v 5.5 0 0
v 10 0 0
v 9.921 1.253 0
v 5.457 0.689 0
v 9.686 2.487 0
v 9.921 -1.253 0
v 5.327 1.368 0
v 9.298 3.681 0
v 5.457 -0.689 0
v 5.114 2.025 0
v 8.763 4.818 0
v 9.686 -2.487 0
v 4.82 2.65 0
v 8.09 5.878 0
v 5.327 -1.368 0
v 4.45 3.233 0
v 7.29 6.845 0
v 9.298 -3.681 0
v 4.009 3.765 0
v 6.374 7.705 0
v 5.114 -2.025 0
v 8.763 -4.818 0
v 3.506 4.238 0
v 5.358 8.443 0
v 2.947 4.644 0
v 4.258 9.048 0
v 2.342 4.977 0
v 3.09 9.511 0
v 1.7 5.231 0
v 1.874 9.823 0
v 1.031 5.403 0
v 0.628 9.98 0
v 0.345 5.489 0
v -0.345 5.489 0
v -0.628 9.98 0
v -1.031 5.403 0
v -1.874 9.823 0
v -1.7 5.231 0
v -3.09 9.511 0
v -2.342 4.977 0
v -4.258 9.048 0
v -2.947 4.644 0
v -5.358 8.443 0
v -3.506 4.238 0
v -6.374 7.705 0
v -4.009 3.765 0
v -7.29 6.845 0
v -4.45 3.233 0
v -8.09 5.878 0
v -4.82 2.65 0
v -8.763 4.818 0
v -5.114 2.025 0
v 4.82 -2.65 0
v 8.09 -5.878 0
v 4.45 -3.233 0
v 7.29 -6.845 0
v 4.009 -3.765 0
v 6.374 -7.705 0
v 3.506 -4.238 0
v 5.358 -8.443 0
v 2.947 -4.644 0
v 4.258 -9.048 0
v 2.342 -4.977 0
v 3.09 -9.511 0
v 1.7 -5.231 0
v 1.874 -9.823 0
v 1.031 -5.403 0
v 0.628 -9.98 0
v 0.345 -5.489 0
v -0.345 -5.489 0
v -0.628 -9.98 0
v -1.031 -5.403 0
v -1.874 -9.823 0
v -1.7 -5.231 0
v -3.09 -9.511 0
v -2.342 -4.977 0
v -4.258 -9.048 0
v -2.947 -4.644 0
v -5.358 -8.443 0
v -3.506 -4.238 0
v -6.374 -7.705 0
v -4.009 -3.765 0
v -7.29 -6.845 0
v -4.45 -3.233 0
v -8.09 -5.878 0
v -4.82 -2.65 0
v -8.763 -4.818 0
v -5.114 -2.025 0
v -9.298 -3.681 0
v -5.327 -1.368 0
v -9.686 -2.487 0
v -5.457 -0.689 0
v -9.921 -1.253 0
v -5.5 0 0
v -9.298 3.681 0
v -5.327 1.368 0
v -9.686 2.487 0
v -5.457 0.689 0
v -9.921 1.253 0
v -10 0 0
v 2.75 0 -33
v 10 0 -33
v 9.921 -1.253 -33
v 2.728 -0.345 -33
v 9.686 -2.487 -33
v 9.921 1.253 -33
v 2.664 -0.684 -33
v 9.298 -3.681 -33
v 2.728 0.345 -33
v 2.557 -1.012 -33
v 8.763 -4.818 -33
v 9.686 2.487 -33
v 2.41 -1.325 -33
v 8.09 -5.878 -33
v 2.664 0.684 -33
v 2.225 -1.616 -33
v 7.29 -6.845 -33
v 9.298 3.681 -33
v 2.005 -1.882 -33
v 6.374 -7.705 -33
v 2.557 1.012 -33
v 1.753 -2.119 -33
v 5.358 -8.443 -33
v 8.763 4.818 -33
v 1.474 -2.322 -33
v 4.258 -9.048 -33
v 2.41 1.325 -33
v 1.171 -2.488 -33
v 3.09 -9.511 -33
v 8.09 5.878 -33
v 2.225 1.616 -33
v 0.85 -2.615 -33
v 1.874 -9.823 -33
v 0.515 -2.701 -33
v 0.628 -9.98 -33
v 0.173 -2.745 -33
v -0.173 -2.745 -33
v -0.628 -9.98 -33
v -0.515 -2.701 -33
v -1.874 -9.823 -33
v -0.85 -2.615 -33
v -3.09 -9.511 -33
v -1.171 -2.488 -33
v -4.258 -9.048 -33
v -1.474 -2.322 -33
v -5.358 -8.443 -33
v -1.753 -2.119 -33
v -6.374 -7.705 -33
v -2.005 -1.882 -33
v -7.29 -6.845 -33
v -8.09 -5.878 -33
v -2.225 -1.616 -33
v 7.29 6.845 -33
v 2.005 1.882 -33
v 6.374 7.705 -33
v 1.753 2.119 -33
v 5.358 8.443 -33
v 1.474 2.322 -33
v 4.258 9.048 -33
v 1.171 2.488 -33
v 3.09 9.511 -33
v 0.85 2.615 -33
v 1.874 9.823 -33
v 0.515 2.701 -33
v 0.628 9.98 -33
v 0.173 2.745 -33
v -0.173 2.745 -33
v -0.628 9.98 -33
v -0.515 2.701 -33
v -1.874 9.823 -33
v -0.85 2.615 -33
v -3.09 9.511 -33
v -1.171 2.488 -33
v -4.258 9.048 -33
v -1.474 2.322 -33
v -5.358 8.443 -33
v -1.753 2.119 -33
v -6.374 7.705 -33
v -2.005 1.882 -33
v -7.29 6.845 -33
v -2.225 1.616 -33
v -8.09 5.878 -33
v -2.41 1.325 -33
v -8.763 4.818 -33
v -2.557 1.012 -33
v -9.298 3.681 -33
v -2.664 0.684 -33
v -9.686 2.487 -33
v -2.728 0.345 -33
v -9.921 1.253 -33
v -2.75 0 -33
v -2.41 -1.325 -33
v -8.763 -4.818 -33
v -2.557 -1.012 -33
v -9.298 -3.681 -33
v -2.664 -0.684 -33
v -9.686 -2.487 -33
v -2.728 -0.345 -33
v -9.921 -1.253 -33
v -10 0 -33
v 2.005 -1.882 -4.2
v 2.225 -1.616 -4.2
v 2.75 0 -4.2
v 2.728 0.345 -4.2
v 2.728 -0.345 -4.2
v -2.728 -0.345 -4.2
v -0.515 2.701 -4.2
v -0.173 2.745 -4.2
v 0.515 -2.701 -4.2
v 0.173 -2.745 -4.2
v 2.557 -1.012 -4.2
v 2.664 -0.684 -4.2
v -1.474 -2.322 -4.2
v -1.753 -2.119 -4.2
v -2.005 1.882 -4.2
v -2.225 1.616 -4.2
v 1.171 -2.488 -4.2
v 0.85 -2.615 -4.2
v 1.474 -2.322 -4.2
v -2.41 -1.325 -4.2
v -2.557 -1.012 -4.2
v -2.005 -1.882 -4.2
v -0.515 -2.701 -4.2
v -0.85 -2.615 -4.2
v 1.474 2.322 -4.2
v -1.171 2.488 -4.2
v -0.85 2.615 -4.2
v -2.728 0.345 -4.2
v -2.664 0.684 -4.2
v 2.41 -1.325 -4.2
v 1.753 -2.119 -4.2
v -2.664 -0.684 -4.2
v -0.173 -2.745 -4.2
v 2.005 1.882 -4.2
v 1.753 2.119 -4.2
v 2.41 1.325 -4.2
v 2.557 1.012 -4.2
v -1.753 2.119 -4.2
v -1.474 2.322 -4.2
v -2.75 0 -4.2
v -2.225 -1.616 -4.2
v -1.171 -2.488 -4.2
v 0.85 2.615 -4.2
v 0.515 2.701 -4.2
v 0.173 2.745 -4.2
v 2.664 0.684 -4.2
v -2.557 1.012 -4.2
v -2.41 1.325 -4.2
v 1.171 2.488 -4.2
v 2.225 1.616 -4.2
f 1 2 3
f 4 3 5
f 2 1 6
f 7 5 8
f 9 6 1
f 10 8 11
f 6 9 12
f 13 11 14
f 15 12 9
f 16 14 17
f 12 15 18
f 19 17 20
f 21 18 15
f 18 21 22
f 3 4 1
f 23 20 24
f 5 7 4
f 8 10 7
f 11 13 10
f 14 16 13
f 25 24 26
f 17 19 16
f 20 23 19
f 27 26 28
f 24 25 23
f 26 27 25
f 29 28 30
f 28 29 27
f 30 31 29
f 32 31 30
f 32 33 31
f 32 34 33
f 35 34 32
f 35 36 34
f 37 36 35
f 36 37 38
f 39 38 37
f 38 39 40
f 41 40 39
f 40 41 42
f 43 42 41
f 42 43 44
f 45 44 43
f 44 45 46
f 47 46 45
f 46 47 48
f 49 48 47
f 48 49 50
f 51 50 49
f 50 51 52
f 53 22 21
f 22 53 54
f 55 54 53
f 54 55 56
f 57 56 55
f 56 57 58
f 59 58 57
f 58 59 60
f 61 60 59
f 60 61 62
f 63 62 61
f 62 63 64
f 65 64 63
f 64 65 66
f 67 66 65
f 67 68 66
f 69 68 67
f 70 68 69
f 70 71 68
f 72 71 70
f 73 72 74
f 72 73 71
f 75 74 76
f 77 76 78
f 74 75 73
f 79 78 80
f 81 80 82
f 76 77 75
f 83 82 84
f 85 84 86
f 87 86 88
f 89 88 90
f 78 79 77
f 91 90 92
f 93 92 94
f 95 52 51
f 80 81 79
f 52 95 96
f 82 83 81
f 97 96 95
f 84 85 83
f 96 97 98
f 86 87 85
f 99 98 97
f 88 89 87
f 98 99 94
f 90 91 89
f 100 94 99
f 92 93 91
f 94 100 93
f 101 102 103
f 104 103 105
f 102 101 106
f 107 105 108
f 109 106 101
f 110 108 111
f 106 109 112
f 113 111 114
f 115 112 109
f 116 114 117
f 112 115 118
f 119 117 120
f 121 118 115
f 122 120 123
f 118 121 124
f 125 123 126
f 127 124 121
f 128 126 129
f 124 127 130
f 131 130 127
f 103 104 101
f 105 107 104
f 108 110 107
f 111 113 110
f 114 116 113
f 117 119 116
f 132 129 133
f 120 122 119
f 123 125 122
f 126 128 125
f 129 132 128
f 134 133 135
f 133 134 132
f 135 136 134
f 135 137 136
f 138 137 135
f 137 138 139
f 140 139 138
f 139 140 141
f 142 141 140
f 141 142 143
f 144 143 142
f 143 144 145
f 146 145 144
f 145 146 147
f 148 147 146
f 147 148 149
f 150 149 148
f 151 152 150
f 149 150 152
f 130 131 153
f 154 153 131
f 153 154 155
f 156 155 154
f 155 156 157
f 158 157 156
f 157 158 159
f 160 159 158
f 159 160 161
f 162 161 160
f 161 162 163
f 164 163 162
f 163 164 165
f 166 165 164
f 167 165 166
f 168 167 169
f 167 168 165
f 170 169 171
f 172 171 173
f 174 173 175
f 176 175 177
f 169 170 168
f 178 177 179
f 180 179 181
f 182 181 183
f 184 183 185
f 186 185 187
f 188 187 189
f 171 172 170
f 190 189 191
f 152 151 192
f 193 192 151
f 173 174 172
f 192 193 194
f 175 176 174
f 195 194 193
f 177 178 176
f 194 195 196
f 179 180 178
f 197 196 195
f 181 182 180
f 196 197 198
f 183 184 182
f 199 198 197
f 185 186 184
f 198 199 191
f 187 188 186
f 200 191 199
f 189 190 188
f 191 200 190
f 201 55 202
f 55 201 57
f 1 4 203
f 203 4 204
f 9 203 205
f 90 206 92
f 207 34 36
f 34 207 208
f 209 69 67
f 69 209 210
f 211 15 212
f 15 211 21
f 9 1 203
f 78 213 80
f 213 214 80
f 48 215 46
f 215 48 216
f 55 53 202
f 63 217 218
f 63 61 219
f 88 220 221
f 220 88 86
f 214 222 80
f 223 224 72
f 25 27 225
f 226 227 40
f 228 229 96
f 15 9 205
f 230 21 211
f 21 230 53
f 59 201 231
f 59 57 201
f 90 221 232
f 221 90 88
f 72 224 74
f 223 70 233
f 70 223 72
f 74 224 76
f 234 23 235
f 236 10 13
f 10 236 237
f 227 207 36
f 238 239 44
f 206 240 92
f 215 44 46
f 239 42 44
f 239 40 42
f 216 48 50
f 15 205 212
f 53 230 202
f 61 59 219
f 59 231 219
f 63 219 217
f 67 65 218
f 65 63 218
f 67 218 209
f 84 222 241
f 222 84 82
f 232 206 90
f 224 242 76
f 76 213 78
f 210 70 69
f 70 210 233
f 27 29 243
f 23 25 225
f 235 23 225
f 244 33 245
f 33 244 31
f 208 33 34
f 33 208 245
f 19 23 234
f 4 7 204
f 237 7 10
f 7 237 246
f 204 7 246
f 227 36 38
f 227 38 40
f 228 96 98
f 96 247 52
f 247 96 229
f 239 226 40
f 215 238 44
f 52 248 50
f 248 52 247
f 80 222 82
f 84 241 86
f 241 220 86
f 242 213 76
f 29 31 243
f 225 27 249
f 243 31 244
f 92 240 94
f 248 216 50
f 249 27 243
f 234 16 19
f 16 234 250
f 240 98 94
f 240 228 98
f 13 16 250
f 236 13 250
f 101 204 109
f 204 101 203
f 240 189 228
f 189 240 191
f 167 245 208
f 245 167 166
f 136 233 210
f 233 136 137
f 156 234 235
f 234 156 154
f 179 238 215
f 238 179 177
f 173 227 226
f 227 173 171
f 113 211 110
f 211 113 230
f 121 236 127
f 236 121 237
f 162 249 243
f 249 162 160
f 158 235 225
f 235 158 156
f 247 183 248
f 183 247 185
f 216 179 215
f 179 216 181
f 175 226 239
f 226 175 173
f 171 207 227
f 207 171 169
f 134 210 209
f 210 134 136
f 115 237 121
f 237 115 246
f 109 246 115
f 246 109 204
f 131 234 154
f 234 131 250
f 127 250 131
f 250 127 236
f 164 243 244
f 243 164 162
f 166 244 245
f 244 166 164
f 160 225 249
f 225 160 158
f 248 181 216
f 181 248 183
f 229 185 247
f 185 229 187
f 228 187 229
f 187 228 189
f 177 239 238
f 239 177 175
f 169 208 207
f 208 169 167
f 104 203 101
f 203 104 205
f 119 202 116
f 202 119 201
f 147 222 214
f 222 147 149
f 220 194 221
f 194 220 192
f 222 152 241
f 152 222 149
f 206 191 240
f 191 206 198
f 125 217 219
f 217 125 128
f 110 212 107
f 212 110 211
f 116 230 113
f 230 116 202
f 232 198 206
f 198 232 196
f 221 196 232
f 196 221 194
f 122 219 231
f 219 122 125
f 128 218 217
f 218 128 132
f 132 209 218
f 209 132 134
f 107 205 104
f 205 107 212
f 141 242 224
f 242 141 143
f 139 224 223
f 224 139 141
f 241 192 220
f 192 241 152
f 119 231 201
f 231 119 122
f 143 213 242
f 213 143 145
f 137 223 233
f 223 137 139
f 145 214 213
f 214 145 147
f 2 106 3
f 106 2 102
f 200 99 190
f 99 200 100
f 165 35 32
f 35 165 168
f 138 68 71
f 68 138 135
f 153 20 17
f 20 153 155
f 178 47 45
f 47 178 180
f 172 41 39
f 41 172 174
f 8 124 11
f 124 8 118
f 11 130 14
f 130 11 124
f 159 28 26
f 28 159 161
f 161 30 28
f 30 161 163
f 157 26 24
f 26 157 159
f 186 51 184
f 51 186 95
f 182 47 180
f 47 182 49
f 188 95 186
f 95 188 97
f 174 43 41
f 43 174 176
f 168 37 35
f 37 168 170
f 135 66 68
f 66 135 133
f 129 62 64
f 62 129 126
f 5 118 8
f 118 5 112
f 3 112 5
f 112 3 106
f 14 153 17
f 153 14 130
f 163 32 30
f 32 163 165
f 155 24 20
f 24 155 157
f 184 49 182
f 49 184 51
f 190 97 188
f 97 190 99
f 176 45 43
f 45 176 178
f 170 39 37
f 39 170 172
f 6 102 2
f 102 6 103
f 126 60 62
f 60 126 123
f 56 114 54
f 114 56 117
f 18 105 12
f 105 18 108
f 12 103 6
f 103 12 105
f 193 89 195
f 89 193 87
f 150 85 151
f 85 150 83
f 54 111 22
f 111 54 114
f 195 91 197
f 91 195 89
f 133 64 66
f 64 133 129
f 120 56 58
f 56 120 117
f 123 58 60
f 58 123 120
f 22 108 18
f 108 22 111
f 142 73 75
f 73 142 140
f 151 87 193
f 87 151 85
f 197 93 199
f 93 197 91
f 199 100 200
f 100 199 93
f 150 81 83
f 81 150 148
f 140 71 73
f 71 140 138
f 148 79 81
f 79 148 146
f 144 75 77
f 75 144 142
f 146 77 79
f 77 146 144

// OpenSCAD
$fn = 50;


difference() {
	union() {
		translate(v = [0, 0, -33.0000000000]) {
			cylinder(h = 33, r = 10.0000000000);
		}
		cylinder(h = 0, r = 20.0000000000);
	}
	union() {
		translate(v = [0, 0, 0]) {
			rotate(a = [0, 0, 0]) {
				difference() {
					union() {
						#translate(v = [0, 0, -33.0000000000]) {
							cylinder(h = 33, r = 2.2500000000);
						}
						#translate(v = [0, 0, -4.2000000000]) {
							cylinder(h = 4.2000000000, r1 = 2.7500000000, r2 = 5.5000000000);
						}
						#translate(v = [0, 0, -33.0000000000]) {
							cylinder(h = 33, r = 2.7500000000);
						}
						#translate(v = [0, 0, -33.0000000000]) {
							cylinder(h = 33, r = 2.2500000000);
						}
					}
					union();
				}
			}
		}
	}
}
